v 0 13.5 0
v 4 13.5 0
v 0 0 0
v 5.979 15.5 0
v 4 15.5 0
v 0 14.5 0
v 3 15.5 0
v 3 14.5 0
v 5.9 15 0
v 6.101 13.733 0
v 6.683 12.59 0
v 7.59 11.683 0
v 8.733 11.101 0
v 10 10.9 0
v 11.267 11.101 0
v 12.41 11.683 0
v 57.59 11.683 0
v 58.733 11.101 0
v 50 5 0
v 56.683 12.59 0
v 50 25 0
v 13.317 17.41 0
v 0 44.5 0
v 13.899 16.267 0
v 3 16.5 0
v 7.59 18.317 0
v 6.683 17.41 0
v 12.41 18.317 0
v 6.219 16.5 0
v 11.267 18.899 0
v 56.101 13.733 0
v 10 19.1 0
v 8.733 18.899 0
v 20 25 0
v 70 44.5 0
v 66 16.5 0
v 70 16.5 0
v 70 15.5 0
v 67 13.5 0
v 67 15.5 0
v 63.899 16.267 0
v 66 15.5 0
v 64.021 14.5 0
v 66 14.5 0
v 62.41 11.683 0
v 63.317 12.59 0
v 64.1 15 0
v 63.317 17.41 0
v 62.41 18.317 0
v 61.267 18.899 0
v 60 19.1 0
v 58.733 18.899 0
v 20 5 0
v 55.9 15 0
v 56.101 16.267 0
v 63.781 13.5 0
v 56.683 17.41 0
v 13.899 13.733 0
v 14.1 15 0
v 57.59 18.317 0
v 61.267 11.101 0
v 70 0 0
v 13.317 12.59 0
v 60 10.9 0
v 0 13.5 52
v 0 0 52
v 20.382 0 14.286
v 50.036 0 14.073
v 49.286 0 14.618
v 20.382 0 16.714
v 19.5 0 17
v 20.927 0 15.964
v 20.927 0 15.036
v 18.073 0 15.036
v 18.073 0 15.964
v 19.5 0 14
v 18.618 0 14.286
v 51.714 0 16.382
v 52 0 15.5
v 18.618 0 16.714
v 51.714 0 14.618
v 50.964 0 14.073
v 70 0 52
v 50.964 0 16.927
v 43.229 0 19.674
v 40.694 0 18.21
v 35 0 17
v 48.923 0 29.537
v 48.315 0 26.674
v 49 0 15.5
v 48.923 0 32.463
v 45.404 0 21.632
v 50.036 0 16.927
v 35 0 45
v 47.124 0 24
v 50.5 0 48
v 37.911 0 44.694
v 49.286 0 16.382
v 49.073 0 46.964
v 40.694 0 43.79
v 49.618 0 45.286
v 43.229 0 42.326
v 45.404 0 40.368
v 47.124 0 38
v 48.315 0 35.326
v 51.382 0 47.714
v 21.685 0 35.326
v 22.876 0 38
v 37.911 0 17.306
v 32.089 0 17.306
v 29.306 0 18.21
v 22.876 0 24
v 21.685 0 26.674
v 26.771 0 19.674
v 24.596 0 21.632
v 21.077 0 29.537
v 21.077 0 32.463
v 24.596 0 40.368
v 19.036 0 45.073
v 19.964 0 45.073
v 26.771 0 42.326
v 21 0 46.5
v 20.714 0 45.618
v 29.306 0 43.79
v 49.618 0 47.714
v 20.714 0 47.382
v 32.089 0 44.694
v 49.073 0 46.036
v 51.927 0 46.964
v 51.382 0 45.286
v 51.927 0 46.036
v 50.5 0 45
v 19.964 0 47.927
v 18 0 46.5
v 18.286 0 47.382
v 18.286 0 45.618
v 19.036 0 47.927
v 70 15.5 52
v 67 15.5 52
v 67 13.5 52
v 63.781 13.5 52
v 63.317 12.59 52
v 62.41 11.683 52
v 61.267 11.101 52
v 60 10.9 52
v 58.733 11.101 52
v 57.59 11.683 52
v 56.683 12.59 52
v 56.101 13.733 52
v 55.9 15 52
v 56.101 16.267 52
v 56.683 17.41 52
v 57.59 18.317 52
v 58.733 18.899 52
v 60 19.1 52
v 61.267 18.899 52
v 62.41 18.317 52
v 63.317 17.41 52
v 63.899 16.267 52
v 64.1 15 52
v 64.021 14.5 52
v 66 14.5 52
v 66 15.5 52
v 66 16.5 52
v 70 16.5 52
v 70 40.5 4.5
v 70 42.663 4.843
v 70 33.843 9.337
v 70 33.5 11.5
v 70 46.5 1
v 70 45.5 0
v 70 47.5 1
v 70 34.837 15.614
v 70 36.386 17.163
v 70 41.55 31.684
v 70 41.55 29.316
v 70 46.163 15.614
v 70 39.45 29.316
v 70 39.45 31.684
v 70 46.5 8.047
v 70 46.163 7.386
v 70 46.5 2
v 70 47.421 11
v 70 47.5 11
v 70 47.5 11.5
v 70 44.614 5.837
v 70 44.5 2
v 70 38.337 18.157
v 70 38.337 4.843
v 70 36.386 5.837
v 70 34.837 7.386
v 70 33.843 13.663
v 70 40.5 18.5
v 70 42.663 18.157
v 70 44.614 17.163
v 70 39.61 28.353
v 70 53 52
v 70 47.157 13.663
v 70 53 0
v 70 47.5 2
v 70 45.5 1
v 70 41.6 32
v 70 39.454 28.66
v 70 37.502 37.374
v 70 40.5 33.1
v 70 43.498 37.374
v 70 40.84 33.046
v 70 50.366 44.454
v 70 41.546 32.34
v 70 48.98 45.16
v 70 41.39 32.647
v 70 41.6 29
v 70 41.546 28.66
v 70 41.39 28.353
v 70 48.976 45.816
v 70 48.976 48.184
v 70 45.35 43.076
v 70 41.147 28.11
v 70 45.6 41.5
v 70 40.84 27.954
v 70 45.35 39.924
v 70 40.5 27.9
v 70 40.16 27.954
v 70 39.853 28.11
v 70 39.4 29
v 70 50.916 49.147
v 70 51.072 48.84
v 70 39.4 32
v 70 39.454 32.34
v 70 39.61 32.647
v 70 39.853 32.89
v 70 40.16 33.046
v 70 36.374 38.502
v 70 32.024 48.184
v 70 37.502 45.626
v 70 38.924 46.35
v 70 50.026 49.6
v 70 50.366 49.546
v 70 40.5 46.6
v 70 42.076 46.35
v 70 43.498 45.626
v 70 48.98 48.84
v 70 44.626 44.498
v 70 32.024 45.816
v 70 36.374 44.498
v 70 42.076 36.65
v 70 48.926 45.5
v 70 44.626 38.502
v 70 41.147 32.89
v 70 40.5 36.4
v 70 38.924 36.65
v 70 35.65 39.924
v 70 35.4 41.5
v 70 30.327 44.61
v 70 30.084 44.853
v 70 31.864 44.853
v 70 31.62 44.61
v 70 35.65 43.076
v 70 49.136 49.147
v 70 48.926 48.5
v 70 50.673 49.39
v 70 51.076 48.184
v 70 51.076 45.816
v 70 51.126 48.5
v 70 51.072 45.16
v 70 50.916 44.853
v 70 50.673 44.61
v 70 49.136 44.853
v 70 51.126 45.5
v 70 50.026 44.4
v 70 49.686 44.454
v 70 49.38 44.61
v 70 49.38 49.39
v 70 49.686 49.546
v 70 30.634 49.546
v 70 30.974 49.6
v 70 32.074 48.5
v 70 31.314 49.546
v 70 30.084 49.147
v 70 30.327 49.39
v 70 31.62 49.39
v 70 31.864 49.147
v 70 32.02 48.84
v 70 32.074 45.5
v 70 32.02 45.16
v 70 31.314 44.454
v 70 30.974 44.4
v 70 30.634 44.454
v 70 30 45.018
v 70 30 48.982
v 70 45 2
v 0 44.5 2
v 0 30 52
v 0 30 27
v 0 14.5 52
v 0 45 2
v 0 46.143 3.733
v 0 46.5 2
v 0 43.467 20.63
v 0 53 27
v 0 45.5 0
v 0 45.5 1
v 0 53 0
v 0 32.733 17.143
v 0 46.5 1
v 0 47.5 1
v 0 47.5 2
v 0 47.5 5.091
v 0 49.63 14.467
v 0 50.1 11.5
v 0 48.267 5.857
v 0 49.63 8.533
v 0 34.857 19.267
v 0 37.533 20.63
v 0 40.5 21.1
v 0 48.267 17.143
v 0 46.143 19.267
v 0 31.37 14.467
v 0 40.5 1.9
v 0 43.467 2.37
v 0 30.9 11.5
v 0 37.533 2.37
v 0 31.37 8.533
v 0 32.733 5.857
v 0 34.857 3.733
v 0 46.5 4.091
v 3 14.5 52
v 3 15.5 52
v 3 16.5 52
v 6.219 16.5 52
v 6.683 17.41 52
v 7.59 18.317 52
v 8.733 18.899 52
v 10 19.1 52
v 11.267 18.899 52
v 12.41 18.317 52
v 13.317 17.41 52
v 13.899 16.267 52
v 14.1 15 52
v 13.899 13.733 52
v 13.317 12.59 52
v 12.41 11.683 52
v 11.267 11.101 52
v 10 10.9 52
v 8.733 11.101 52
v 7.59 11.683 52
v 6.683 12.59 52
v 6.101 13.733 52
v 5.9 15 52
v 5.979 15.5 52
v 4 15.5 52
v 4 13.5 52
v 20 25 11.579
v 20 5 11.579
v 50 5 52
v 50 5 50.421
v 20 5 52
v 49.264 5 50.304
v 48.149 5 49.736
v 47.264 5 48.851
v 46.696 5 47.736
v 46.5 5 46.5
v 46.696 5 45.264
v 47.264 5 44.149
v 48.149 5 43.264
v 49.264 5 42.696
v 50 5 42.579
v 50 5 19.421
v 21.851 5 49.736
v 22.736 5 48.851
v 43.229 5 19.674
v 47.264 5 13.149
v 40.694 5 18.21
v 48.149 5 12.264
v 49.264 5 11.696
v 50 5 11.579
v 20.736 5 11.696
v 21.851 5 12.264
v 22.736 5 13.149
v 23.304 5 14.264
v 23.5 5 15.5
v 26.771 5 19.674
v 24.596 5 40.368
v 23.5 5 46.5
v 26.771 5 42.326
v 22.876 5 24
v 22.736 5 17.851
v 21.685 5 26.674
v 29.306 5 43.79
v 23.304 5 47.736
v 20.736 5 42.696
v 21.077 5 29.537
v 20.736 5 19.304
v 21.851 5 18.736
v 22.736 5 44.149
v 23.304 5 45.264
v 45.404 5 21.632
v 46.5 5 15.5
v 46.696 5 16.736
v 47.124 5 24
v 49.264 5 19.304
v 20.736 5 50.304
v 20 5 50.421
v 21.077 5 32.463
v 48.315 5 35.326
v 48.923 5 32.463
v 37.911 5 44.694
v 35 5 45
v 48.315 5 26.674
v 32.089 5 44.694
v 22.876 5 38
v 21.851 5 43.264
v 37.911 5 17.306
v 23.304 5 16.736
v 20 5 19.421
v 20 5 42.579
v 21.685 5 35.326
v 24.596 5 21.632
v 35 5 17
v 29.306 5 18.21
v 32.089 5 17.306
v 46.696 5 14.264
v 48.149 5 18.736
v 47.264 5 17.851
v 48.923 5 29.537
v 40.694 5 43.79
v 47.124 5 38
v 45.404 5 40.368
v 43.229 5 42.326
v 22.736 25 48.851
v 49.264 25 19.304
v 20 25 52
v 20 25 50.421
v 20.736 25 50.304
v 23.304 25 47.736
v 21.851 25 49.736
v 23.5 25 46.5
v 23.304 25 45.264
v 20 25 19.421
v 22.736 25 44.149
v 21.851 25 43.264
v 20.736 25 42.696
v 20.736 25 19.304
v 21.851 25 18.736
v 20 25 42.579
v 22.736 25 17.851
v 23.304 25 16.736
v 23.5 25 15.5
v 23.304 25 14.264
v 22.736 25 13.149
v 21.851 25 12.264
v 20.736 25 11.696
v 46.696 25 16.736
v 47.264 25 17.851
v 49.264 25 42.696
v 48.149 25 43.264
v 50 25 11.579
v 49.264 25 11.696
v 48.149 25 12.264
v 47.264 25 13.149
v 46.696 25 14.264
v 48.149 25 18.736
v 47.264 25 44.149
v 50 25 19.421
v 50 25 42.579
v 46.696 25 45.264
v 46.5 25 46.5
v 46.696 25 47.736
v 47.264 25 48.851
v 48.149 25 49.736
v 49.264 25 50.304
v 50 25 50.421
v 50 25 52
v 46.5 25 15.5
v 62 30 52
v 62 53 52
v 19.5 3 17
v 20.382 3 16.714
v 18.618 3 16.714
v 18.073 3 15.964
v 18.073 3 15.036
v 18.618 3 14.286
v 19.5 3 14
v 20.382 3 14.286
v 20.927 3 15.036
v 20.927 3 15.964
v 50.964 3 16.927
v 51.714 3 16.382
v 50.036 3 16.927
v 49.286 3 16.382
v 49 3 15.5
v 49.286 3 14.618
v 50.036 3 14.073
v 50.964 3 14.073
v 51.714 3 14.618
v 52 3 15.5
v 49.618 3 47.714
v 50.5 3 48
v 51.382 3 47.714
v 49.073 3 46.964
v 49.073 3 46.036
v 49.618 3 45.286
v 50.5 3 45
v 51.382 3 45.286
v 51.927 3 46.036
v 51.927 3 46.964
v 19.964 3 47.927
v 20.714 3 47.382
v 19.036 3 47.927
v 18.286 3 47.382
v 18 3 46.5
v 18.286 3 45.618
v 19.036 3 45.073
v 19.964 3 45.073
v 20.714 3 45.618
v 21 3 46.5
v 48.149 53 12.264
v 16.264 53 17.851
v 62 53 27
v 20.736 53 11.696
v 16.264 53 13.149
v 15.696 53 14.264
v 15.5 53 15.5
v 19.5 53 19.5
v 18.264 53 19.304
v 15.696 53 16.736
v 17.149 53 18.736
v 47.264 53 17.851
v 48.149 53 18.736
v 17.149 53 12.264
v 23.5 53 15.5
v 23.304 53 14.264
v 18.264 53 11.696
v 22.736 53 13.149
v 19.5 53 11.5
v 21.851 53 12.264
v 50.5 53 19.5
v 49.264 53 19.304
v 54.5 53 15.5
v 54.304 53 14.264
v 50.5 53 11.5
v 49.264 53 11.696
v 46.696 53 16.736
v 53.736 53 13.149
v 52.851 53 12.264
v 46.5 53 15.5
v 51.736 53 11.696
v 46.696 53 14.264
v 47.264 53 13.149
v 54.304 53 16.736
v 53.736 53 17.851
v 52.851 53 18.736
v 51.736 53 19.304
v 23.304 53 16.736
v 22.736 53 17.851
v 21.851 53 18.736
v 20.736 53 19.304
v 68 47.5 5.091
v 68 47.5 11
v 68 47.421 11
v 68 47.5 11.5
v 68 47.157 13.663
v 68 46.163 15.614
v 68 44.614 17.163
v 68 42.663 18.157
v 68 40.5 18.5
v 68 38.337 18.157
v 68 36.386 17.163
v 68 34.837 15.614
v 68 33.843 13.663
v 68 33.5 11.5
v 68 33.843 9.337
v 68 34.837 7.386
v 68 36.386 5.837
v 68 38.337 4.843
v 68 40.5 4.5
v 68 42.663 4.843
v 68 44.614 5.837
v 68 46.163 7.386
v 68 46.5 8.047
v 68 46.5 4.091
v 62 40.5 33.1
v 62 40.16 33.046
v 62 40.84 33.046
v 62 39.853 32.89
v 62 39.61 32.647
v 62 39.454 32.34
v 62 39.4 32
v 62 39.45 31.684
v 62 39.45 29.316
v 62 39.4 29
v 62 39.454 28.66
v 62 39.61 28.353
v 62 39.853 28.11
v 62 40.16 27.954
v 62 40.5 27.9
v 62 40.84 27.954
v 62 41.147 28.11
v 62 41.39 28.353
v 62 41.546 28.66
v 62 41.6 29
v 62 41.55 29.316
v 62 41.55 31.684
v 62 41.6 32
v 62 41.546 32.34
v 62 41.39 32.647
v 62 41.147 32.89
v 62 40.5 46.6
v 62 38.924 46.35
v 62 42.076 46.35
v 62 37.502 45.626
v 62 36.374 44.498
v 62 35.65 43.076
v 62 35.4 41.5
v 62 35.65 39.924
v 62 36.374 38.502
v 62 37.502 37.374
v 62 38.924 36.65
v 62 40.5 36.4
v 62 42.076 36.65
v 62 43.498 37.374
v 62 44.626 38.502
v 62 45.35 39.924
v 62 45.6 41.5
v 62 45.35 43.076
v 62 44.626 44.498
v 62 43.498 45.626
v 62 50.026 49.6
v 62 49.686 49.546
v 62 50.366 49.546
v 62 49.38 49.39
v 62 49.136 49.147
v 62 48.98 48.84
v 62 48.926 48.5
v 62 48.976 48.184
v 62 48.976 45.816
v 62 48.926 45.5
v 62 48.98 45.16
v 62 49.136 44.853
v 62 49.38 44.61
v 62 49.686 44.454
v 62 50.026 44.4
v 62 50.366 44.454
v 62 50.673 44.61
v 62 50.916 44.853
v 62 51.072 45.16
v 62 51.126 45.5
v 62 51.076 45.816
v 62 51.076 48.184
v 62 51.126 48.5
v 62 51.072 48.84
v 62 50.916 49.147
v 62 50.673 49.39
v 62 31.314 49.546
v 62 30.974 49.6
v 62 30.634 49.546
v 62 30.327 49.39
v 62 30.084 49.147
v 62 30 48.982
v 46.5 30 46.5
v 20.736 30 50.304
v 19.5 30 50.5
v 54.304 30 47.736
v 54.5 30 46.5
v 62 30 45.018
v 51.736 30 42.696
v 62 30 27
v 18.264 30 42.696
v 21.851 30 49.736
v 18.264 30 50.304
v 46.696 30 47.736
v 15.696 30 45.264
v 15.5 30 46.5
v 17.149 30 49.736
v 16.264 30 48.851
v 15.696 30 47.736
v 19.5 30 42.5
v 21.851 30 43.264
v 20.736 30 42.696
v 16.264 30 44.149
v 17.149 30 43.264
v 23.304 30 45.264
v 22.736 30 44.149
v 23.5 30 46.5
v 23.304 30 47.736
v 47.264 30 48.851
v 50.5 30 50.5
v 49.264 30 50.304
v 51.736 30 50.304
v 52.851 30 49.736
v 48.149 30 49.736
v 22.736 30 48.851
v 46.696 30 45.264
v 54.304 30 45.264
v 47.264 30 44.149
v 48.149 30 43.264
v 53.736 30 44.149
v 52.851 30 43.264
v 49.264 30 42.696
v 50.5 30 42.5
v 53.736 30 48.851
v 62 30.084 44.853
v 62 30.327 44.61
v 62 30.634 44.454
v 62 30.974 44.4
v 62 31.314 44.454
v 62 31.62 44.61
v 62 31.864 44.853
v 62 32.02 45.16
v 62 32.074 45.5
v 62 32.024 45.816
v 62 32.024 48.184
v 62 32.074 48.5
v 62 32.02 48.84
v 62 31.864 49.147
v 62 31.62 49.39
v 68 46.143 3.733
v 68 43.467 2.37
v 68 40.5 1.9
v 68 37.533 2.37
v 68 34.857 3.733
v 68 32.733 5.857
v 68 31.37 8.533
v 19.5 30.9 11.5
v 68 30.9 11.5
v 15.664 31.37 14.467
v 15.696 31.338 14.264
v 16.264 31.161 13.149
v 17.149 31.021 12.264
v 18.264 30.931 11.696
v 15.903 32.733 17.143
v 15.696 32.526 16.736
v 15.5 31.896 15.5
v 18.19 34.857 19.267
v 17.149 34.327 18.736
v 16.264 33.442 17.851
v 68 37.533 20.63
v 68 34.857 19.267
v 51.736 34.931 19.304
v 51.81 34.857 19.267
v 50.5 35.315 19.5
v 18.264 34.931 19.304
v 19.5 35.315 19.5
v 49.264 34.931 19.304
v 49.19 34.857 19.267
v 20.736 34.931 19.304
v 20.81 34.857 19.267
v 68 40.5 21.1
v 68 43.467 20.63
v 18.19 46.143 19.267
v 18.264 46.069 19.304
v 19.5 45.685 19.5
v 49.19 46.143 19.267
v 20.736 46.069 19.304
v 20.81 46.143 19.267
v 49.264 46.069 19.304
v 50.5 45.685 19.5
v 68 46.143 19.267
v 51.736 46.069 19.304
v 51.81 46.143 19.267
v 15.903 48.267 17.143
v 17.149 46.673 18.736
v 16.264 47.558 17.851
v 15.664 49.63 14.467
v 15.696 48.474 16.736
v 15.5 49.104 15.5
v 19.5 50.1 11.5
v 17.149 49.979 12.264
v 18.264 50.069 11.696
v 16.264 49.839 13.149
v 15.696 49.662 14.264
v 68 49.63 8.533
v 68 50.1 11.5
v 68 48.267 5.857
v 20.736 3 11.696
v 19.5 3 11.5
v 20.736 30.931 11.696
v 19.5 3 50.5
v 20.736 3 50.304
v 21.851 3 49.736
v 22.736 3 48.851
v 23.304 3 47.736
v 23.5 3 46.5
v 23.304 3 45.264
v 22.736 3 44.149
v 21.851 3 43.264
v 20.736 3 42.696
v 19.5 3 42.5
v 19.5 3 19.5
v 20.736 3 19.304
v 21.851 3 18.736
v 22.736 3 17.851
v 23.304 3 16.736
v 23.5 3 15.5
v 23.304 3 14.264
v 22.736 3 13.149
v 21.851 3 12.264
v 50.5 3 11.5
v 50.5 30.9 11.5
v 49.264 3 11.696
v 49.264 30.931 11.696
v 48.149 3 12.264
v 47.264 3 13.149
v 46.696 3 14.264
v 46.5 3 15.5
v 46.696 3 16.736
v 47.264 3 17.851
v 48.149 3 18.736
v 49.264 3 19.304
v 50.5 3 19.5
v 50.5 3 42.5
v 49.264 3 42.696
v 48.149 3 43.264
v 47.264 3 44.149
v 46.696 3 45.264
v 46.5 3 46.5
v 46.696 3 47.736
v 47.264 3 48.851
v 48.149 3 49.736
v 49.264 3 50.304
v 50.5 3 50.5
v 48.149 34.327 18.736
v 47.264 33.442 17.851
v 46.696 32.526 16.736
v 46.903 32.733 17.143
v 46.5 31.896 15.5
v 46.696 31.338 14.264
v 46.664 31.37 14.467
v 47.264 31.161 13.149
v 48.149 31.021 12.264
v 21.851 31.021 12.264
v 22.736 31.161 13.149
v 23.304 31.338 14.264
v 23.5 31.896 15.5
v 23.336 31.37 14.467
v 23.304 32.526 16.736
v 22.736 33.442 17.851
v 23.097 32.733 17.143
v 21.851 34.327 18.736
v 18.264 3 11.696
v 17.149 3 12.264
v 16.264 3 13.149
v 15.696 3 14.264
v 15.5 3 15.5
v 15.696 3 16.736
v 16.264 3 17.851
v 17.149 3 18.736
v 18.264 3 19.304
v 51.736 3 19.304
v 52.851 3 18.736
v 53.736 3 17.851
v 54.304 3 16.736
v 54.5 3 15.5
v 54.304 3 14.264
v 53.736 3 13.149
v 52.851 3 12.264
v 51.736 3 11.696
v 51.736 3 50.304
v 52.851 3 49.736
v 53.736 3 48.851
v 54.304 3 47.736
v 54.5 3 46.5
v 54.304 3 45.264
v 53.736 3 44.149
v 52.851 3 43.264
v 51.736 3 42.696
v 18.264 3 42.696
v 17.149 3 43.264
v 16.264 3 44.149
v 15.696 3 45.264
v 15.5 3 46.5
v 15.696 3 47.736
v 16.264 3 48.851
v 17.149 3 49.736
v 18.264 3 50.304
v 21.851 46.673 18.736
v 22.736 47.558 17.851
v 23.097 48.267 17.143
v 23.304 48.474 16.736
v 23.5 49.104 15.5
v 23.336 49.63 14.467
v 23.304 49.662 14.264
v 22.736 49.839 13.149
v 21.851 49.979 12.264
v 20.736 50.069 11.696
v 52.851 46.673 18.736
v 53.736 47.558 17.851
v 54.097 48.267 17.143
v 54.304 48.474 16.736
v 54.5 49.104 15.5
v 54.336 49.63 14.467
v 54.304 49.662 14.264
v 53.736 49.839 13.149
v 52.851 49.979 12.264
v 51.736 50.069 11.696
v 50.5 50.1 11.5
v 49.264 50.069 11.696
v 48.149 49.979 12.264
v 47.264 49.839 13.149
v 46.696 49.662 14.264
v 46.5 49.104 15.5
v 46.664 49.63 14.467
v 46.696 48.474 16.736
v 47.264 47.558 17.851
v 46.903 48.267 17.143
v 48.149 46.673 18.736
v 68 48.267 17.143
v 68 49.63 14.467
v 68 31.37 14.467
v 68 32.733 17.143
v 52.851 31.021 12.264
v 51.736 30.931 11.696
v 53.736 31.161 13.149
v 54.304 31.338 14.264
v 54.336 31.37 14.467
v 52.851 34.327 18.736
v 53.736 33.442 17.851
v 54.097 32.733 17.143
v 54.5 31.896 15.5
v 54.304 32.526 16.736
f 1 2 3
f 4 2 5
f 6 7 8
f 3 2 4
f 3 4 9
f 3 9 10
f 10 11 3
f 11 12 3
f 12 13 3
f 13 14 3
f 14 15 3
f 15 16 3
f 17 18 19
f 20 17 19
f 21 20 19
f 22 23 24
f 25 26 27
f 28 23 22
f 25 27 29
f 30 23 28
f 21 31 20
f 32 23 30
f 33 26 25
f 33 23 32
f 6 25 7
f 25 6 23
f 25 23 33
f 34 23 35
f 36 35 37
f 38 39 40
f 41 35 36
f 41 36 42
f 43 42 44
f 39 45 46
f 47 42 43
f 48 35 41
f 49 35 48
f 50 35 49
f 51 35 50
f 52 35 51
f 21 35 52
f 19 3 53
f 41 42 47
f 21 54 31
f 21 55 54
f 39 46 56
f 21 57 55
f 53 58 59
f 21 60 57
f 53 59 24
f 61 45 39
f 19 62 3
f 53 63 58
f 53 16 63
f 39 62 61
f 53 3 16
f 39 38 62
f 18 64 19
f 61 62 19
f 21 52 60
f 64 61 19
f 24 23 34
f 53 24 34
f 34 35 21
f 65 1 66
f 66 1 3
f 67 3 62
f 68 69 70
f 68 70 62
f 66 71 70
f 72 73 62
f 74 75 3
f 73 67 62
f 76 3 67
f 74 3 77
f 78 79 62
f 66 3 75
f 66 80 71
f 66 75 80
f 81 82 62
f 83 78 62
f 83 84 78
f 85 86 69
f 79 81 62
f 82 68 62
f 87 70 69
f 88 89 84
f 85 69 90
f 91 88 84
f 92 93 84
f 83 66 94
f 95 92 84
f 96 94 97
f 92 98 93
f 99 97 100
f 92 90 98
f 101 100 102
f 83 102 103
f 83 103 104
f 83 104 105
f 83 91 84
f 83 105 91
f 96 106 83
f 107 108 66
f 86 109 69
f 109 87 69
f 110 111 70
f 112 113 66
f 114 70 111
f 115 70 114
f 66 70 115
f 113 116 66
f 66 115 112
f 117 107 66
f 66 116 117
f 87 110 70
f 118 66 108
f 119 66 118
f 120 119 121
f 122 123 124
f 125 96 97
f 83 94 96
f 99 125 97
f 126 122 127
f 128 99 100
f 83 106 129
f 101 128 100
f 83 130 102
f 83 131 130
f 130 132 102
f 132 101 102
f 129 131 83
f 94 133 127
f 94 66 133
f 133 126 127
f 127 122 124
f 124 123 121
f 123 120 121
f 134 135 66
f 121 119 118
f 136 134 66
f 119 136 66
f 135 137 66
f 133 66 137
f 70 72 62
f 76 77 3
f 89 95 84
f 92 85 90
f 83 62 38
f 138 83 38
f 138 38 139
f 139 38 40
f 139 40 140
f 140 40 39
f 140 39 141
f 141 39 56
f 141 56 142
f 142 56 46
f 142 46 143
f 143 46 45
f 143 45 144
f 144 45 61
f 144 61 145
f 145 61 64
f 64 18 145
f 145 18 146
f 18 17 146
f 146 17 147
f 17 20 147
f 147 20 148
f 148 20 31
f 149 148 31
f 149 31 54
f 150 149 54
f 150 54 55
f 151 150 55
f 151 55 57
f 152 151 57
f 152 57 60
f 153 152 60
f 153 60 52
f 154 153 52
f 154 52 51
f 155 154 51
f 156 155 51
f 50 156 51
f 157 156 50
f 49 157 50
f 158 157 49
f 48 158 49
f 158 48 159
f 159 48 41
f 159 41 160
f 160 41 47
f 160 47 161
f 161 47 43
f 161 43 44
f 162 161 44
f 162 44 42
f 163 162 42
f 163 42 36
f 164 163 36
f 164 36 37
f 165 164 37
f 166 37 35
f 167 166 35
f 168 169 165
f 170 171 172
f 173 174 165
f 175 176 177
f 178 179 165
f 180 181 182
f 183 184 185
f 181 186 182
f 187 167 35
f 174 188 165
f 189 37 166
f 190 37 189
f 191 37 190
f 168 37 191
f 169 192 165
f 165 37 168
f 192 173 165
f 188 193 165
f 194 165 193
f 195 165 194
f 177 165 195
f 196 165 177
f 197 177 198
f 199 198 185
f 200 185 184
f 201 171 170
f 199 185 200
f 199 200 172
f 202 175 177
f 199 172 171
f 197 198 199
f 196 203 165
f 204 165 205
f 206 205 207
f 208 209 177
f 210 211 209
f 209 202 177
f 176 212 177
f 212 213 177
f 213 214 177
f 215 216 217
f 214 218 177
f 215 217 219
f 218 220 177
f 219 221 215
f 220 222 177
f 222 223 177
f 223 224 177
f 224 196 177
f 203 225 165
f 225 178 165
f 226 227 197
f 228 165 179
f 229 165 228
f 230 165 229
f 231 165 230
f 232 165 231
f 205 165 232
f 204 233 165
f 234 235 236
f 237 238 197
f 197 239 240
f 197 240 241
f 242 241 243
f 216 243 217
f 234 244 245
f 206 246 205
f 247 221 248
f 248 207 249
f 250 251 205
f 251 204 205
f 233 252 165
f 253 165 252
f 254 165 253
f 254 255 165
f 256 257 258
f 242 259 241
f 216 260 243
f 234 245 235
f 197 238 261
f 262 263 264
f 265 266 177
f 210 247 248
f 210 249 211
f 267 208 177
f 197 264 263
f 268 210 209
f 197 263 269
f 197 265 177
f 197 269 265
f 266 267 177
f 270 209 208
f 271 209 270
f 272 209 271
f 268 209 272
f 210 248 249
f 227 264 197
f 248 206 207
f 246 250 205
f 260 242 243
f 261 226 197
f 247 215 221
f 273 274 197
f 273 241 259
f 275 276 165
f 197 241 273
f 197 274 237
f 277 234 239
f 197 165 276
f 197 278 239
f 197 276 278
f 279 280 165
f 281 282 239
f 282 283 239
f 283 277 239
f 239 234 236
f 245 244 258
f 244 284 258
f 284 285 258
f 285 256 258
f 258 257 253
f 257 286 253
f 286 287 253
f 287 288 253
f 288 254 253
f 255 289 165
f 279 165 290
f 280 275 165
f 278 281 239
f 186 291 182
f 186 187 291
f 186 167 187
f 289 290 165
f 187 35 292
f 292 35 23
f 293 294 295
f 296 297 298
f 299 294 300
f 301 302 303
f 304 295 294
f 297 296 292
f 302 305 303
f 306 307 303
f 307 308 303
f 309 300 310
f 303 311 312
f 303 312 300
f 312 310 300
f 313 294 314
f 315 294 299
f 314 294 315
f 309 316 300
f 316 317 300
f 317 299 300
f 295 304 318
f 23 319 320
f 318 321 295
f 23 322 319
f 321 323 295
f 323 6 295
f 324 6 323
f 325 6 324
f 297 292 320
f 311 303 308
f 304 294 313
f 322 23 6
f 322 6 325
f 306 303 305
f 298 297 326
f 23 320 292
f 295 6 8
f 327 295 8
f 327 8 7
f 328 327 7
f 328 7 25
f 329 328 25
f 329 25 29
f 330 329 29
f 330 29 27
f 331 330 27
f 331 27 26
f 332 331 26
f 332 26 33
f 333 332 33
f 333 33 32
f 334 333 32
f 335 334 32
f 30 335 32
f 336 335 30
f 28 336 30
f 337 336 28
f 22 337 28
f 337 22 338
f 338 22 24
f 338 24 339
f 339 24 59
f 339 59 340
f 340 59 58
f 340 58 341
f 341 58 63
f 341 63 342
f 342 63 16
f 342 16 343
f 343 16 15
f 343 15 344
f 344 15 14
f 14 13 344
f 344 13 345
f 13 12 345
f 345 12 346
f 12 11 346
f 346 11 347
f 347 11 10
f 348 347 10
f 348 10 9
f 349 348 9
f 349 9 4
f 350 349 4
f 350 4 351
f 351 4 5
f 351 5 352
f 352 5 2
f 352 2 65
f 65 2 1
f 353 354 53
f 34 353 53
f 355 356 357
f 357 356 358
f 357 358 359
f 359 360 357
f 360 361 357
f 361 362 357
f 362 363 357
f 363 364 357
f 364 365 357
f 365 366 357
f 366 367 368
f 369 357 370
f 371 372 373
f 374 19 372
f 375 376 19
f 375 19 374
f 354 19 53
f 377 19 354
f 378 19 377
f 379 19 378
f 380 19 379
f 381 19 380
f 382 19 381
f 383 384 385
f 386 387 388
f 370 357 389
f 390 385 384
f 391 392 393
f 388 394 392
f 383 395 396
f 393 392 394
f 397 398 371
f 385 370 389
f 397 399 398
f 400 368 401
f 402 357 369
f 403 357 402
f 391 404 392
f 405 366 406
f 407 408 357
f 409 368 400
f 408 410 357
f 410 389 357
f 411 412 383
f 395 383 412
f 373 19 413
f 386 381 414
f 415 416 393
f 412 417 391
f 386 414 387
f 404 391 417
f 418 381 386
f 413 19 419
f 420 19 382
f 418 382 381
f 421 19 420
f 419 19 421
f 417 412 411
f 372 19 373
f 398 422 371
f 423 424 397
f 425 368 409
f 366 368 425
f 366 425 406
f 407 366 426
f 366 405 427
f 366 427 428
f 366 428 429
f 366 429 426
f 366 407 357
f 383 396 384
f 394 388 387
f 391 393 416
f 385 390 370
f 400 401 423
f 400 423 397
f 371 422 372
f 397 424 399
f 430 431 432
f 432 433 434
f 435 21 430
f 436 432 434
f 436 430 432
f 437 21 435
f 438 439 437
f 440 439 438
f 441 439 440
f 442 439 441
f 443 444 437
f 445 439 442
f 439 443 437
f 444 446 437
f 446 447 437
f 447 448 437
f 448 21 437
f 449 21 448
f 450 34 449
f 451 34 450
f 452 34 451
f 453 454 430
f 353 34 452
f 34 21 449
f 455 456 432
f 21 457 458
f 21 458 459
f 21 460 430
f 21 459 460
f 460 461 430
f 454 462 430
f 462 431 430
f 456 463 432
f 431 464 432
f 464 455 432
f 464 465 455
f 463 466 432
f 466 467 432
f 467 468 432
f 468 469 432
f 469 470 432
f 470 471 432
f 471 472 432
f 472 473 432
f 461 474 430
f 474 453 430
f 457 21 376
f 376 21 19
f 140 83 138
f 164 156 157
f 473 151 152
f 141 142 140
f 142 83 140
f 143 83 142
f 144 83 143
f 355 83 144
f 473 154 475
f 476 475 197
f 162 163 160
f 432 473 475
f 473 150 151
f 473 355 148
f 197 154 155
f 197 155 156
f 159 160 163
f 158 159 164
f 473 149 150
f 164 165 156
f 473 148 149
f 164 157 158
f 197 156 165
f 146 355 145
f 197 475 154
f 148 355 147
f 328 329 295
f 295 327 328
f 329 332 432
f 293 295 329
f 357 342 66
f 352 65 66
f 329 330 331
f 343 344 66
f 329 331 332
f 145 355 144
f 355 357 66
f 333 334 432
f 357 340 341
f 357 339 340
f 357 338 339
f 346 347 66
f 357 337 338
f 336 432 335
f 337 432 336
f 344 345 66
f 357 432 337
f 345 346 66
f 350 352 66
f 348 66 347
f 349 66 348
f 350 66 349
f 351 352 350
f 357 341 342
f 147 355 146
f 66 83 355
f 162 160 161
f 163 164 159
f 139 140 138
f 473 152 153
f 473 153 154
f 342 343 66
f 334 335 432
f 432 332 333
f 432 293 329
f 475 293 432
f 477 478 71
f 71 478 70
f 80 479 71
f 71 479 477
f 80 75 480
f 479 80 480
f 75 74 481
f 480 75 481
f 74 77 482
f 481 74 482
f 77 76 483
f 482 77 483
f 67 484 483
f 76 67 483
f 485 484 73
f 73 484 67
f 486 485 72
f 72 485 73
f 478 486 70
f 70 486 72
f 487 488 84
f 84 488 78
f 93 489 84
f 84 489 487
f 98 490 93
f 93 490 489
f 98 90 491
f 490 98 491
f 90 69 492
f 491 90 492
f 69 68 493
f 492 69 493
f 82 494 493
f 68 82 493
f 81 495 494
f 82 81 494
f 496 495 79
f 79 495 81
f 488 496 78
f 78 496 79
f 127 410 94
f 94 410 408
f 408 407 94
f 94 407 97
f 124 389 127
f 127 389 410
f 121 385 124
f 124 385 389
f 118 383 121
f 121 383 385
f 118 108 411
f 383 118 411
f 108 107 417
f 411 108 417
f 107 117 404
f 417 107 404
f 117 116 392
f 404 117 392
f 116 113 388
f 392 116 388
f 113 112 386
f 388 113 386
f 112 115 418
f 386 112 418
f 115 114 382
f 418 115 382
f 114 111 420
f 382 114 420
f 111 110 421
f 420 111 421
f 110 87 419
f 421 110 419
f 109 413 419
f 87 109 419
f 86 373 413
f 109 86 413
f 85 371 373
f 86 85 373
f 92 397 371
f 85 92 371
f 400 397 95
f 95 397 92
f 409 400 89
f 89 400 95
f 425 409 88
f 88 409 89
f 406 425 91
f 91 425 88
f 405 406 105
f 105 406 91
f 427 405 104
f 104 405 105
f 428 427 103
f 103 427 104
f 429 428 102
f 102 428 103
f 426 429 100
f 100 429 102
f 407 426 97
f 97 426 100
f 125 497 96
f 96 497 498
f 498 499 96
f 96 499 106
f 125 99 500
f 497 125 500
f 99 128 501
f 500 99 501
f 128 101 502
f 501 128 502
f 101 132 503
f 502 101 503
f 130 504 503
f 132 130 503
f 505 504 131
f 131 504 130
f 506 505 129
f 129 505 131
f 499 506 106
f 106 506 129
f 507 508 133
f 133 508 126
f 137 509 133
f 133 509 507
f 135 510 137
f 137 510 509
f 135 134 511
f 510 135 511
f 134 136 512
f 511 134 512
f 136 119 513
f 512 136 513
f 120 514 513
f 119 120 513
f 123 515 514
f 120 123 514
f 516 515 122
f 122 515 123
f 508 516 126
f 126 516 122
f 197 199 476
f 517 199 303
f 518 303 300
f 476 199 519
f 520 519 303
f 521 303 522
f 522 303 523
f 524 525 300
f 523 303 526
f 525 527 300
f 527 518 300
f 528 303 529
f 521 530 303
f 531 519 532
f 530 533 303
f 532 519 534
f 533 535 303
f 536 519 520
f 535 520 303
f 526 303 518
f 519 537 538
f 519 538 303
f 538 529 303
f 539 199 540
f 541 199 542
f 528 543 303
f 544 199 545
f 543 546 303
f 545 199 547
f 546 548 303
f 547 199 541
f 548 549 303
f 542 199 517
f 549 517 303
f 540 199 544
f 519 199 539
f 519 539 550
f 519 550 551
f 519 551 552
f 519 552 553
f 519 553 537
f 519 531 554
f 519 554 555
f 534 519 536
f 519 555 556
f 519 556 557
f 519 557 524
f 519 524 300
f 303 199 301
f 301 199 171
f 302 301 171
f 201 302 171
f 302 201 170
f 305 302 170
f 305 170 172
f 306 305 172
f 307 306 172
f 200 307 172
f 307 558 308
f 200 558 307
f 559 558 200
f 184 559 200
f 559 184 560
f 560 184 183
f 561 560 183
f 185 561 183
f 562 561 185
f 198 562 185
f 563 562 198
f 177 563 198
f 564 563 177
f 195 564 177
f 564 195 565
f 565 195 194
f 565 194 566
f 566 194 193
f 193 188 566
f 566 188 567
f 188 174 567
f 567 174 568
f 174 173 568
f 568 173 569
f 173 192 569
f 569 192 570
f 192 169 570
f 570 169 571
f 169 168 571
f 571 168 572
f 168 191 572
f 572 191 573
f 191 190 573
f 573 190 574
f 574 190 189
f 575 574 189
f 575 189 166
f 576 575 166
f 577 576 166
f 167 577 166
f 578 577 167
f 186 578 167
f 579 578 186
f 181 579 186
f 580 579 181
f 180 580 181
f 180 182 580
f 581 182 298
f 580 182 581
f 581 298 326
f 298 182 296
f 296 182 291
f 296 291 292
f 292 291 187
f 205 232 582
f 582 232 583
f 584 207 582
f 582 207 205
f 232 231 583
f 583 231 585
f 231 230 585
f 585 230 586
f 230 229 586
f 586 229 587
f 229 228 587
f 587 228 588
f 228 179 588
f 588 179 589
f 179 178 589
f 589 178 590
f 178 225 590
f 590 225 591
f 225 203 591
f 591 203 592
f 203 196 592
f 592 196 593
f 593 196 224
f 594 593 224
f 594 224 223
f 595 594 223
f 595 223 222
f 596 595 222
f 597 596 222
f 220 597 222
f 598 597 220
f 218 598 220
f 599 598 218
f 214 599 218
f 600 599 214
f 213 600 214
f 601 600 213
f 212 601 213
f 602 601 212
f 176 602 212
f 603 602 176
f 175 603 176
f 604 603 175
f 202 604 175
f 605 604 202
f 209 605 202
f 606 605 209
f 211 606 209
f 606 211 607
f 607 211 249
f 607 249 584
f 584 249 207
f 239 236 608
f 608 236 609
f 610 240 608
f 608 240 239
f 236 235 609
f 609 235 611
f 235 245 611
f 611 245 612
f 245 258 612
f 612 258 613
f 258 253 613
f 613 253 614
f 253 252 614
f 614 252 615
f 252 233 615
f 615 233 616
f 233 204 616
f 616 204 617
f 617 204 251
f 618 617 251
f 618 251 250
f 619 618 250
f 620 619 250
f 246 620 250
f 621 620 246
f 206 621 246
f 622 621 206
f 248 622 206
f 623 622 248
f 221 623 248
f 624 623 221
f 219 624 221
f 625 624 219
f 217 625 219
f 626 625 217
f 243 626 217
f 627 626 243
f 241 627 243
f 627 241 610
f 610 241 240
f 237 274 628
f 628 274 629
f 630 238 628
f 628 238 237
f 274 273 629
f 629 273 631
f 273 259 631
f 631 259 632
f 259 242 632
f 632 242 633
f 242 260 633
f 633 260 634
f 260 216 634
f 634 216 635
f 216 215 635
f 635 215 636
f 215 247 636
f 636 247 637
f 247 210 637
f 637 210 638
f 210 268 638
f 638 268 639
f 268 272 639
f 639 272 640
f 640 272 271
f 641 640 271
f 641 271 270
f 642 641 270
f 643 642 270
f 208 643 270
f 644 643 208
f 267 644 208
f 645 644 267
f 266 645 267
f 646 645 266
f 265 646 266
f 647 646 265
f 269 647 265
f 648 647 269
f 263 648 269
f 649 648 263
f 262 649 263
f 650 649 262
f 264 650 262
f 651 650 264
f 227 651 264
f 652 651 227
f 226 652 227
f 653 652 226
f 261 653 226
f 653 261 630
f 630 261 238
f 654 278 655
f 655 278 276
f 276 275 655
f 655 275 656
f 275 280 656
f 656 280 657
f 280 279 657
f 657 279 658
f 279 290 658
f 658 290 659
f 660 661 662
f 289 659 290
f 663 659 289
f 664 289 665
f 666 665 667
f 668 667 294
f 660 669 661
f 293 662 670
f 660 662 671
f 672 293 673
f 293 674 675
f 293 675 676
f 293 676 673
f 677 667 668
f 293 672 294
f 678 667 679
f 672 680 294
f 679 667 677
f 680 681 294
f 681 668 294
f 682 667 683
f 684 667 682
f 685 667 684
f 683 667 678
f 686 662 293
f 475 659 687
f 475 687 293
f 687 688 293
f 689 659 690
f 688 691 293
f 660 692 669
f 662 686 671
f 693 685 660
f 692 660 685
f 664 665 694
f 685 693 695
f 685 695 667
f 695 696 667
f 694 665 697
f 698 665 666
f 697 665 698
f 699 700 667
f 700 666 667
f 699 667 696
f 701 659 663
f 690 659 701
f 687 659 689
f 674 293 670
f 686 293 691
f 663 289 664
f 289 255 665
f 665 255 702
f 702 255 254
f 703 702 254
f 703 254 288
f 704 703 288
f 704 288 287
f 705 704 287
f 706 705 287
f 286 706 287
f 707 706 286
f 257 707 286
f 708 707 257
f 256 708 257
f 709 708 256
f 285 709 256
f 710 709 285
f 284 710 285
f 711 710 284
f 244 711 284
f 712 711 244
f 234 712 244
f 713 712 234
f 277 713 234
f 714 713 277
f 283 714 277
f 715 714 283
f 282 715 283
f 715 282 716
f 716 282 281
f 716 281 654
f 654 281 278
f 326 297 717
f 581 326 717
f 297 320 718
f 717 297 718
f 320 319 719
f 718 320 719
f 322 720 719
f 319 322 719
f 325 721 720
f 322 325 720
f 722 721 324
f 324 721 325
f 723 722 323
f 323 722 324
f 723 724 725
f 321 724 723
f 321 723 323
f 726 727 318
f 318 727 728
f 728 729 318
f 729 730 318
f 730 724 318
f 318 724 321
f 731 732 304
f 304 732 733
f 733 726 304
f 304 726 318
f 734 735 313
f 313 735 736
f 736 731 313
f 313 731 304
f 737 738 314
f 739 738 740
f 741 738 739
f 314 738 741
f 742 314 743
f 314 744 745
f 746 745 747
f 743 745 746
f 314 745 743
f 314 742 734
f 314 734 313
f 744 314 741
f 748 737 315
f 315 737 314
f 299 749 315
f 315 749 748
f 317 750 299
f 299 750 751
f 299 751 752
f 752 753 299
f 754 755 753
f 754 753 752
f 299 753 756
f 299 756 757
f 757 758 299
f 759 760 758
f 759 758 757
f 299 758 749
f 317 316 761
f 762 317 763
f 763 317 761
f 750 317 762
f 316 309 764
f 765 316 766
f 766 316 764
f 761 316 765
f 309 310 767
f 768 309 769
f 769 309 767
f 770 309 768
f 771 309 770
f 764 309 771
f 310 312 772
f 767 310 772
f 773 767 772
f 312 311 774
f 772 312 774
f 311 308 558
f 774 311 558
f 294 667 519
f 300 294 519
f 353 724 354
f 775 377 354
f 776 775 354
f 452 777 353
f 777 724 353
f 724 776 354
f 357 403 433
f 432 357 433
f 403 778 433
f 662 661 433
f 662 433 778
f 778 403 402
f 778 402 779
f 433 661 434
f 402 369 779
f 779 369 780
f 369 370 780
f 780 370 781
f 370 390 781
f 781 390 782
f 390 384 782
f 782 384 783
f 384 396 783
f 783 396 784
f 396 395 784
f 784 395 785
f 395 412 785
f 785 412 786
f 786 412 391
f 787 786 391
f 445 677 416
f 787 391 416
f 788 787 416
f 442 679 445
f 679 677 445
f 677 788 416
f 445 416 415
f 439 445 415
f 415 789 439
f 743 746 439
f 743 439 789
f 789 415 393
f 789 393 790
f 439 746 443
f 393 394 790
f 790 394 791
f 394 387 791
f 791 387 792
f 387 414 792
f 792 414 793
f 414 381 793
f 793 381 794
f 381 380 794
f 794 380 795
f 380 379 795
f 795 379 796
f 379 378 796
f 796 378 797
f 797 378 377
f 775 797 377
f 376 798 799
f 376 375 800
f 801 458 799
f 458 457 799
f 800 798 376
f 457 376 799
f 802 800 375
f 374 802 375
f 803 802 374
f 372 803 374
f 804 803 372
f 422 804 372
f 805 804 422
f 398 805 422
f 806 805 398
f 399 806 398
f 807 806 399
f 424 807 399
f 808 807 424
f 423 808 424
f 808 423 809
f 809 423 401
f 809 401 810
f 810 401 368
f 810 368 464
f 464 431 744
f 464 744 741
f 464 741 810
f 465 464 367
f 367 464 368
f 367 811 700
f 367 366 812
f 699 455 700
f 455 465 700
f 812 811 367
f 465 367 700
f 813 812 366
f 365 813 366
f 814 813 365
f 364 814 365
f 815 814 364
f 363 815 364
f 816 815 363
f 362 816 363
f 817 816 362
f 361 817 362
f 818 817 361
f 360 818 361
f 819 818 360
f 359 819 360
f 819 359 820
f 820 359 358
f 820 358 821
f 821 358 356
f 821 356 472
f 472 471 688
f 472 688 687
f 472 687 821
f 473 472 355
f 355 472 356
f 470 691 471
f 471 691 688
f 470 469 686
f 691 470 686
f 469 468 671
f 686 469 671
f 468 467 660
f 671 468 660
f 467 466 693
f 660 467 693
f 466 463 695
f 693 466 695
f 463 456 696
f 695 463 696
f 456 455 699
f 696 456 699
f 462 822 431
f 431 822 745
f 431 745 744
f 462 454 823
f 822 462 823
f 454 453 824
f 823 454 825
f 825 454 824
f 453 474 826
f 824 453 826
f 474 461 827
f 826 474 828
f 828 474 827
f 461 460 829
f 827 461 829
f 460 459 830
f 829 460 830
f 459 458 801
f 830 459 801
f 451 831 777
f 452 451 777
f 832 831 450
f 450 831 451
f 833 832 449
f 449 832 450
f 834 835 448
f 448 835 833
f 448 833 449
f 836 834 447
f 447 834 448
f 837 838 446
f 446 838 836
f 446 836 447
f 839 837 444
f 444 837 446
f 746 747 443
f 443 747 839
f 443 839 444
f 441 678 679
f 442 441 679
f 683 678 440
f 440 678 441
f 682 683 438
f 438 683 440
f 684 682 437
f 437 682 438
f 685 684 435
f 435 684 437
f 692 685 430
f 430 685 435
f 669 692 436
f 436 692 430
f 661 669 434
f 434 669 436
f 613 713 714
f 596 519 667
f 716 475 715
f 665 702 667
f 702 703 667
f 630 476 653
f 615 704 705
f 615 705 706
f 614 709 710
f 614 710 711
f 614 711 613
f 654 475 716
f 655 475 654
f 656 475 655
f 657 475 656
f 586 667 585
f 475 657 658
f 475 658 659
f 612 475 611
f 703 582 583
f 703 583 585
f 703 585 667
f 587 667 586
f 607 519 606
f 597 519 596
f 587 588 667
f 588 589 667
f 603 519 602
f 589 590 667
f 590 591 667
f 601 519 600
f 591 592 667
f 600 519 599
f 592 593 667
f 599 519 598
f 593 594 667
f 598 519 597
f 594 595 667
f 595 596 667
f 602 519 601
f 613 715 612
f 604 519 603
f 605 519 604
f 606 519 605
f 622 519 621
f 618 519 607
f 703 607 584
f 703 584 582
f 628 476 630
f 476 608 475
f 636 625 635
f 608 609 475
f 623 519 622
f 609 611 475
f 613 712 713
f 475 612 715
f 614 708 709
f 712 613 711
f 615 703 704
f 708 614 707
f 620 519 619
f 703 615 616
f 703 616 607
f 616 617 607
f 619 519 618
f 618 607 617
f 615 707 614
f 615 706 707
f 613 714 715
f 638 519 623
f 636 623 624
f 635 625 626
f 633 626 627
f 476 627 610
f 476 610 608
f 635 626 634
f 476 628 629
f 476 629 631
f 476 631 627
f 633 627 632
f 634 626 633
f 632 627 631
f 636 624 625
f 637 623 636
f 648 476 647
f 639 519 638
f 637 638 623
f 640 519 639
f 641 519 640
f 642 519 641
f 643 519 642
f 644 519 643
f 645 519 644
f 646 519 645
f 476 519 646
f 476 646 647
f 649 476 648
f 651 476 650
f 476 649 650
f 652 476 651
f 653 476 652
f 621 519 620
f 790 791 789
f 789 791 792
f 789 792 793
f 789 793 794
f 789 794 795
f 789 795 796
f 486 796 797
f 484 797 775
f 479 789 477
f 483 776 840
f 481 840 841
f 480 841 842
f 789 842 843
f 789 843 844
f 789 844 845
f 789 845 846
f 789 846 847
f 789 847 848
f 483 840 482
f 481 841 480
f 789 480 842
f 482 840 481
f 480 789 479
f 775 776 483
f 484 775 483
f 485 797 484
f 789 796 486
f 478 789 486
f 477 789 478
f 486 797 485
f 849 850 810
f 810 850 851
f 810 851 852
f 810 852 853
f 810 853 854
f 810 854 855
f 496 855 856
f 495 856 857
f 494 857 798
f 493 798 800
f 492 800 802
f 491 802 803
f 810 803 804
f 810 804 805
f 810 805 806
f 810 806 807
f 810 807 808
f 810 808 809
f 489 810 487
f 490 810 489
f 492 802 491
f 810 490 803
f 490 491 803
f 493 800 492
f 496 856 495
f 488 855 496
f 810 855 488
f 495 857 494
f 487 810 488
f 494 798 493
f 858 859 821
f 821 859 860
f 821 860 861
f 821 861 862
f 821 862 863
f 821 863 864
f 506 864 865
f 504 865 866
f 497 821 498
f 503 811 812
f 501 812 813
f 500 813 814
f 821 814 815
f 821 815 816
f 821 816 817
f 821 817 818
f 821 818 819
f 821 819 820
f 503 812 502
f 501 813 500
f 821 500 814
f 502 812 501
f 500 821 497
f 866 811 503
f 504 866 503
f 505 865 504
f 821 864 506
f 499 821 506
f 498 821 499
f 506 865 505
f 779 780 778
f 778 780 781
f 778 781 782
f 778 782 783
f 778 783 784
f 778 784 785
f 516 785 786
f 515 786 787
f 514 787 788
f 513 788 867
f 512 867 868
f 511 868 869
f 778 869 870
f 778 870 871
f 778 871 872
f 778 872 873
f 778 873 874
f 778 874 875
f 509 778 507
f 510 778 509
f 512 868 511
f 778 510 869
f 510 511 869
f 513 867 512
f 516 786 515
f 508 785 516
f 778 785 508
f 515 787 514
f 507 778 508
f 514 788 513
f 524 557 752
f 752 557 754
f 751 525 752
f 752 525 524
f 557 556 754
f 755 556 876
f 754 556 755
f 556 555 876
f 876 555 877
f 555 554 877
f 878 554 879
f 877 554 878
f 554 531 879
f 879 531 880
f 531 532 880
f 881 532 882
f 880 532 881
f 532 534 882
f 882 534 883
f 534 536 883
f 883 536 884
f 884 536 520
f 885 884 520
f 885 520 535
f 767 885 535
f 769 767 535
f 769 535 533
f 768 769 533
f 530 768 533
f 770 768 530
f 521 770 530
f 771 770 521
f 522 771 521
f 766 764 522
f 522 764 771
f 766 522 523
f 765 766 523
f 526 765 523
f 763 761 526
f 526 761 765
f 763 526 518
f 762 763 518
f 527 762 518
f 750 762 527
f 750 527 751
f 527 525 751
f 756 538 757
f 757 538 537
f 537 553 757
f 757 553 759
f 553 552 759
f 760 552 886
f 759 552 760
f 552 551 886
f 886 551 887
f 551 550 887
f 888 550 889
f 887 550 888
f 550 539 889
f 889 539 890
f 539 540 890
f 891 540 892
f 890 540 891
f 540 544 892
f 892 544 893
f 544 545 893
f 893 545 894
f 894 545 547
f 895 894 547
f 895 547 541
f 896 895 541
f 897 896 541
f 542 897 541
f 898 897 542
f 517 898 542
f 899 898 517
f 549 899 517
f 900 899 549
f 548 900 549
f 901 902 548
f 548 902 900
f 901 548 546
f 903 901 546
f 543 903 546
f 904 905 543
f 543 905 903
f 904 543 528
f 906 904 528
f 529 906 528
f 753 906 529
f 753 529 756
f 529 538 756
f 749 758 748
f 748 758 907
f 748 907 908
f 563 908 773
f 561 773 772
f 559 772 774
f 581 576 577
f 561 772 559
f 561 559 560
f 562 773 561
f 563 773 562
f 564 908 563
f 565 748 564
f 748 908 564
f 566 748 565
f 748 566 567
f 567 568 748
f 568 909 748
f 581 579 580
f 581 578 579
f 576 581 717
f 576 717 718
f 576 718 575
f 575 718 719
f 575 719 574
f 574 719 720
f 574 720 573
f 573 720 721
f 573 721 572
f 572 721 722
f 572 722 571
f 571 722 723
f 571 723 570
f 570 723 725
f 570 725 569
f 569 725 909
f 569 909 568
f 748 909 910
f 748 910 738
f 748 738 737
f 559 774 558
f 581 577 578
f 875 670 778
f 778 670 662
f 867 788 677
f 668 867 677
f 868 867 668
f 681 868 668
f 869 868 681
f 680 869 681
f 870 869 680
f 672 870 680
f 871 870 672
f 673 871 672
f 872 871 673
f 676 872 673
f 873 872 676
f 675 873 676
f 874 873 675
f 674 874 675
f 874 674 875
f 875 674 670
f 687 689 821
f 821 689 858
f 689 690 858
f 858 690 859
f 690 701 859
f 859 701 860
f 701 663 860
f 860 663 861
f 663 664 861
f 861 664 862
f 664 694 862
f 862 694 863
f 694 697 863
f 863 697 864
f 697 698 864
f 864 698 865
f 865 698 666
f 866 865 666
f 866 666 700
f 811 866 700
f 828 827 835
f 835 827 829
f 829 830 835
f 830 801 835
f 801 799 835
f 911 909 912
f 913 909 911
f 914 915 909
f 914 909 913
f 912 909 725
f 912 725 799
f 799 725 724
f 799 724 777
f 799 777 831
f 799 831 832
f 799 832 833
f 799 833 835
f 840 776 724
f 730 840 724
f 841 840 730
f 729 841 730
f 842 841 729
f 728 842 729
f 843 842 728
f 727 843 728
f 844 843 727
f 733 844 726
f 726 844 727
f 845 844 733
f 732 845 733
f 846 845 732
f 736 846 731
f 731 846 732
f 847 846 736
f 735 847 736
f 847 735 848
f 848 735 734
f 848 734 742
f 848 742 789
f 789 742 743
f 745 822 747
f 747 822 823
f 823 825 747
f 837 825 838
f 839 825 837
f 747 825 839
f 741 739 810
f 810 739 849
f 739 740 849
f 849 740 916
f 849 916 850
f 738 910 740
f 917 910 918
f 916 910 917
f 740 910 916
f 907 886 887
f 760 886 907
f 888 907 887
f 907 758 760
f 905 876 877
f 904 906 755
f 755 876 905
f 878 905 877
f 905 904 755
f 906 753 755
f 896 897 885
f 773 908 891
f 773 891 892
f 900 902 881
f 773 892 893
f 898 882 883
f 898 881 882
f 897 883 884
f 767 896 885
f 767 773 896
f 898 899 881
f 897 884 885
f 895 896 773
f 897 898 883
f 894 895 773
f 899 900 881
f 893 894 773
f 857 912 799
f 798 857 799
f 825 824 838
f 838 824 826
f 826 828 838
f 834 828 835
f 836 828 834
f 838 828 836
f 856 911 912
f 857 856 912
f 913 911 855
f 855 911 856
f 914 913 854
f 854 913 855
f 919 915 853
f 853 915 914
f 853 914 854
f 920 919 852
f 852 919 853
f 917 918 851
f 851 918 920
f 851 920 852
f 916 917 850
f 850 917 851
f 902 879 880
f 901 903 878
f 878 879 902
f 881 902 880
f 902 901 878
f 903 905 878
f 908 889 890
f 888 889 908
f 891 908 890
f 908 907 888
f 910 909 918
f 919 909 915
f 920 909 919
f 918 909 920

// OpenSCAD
// file: ../config.scad
holes_extra_radius_compensation = 0.1;

z_axis_shaft_diameter = 10;
z_linear_bearing_outside_diameter = 19;
z_linear_bearing_length = 29;
z_shaft_to_leadscrew_distance = 20/2 + 42/2;  // Half a t-slot + half a stepper motor
z_leadscrew_diameter = 8;
z_leadscrew_nut_screw_diameter = 2;

x_axis_shaft_diameter = 8;
x_axis_pressure_slot_width = 1;
x_end_box_height = 70;

junction_assurance_length = 1;
// main file
// x-stepper-end is the left end of the X axis, it holds the stepper motor, is attached to the Z shaft with 
// linear ball bearings, and is moved by the Z leadscrew
// It also holds the two X shafts
// It is derived from the base x-end ( x_end_base )

include <../config.scad>;
include <base-components/x-end-base.scad>;

rotate(a=[0,90,0]){ x_motor_end(); }

module x_motor_end(){

    // Mirror the object as the base solid is the wrong way for this
    mirror([1,0,0]){ 

        difference(){
            
            // Base x-end solid : as both are a mirror, we only code it once
            x_end_base(); 

            // Remove extraneous solid
            translate([52,-junction_assurance_length,-junction_assurance_length]){
                cube([200,200,200]);
            }
       
            // NEMA17 stepper motor holes 
            translate([42/2+10,junction_assurance_length,x_end_box_height/2]){
                rotate(a=[90,0,0]){
                    // Central hole for stepper shaft and center
                    cylinder(h=10, r=28/2, center=true, $fn=30); 

                    // Holes for 4 fixation screws
                    for(rotation = [0:3]){
                        rotate(a=[0,0,rotation*90]){
                            translate([31/2,31/2,0]){
                                cylinder(h=200, r=3/2, center=true, $fn=10);
                                translate([0,0,-52]){ 
                                    cylinder(h=100, r=8/2, center=true, $fn=20);
                                }
                            }
                        }
                    }
                }
            }
        }
    }
}
